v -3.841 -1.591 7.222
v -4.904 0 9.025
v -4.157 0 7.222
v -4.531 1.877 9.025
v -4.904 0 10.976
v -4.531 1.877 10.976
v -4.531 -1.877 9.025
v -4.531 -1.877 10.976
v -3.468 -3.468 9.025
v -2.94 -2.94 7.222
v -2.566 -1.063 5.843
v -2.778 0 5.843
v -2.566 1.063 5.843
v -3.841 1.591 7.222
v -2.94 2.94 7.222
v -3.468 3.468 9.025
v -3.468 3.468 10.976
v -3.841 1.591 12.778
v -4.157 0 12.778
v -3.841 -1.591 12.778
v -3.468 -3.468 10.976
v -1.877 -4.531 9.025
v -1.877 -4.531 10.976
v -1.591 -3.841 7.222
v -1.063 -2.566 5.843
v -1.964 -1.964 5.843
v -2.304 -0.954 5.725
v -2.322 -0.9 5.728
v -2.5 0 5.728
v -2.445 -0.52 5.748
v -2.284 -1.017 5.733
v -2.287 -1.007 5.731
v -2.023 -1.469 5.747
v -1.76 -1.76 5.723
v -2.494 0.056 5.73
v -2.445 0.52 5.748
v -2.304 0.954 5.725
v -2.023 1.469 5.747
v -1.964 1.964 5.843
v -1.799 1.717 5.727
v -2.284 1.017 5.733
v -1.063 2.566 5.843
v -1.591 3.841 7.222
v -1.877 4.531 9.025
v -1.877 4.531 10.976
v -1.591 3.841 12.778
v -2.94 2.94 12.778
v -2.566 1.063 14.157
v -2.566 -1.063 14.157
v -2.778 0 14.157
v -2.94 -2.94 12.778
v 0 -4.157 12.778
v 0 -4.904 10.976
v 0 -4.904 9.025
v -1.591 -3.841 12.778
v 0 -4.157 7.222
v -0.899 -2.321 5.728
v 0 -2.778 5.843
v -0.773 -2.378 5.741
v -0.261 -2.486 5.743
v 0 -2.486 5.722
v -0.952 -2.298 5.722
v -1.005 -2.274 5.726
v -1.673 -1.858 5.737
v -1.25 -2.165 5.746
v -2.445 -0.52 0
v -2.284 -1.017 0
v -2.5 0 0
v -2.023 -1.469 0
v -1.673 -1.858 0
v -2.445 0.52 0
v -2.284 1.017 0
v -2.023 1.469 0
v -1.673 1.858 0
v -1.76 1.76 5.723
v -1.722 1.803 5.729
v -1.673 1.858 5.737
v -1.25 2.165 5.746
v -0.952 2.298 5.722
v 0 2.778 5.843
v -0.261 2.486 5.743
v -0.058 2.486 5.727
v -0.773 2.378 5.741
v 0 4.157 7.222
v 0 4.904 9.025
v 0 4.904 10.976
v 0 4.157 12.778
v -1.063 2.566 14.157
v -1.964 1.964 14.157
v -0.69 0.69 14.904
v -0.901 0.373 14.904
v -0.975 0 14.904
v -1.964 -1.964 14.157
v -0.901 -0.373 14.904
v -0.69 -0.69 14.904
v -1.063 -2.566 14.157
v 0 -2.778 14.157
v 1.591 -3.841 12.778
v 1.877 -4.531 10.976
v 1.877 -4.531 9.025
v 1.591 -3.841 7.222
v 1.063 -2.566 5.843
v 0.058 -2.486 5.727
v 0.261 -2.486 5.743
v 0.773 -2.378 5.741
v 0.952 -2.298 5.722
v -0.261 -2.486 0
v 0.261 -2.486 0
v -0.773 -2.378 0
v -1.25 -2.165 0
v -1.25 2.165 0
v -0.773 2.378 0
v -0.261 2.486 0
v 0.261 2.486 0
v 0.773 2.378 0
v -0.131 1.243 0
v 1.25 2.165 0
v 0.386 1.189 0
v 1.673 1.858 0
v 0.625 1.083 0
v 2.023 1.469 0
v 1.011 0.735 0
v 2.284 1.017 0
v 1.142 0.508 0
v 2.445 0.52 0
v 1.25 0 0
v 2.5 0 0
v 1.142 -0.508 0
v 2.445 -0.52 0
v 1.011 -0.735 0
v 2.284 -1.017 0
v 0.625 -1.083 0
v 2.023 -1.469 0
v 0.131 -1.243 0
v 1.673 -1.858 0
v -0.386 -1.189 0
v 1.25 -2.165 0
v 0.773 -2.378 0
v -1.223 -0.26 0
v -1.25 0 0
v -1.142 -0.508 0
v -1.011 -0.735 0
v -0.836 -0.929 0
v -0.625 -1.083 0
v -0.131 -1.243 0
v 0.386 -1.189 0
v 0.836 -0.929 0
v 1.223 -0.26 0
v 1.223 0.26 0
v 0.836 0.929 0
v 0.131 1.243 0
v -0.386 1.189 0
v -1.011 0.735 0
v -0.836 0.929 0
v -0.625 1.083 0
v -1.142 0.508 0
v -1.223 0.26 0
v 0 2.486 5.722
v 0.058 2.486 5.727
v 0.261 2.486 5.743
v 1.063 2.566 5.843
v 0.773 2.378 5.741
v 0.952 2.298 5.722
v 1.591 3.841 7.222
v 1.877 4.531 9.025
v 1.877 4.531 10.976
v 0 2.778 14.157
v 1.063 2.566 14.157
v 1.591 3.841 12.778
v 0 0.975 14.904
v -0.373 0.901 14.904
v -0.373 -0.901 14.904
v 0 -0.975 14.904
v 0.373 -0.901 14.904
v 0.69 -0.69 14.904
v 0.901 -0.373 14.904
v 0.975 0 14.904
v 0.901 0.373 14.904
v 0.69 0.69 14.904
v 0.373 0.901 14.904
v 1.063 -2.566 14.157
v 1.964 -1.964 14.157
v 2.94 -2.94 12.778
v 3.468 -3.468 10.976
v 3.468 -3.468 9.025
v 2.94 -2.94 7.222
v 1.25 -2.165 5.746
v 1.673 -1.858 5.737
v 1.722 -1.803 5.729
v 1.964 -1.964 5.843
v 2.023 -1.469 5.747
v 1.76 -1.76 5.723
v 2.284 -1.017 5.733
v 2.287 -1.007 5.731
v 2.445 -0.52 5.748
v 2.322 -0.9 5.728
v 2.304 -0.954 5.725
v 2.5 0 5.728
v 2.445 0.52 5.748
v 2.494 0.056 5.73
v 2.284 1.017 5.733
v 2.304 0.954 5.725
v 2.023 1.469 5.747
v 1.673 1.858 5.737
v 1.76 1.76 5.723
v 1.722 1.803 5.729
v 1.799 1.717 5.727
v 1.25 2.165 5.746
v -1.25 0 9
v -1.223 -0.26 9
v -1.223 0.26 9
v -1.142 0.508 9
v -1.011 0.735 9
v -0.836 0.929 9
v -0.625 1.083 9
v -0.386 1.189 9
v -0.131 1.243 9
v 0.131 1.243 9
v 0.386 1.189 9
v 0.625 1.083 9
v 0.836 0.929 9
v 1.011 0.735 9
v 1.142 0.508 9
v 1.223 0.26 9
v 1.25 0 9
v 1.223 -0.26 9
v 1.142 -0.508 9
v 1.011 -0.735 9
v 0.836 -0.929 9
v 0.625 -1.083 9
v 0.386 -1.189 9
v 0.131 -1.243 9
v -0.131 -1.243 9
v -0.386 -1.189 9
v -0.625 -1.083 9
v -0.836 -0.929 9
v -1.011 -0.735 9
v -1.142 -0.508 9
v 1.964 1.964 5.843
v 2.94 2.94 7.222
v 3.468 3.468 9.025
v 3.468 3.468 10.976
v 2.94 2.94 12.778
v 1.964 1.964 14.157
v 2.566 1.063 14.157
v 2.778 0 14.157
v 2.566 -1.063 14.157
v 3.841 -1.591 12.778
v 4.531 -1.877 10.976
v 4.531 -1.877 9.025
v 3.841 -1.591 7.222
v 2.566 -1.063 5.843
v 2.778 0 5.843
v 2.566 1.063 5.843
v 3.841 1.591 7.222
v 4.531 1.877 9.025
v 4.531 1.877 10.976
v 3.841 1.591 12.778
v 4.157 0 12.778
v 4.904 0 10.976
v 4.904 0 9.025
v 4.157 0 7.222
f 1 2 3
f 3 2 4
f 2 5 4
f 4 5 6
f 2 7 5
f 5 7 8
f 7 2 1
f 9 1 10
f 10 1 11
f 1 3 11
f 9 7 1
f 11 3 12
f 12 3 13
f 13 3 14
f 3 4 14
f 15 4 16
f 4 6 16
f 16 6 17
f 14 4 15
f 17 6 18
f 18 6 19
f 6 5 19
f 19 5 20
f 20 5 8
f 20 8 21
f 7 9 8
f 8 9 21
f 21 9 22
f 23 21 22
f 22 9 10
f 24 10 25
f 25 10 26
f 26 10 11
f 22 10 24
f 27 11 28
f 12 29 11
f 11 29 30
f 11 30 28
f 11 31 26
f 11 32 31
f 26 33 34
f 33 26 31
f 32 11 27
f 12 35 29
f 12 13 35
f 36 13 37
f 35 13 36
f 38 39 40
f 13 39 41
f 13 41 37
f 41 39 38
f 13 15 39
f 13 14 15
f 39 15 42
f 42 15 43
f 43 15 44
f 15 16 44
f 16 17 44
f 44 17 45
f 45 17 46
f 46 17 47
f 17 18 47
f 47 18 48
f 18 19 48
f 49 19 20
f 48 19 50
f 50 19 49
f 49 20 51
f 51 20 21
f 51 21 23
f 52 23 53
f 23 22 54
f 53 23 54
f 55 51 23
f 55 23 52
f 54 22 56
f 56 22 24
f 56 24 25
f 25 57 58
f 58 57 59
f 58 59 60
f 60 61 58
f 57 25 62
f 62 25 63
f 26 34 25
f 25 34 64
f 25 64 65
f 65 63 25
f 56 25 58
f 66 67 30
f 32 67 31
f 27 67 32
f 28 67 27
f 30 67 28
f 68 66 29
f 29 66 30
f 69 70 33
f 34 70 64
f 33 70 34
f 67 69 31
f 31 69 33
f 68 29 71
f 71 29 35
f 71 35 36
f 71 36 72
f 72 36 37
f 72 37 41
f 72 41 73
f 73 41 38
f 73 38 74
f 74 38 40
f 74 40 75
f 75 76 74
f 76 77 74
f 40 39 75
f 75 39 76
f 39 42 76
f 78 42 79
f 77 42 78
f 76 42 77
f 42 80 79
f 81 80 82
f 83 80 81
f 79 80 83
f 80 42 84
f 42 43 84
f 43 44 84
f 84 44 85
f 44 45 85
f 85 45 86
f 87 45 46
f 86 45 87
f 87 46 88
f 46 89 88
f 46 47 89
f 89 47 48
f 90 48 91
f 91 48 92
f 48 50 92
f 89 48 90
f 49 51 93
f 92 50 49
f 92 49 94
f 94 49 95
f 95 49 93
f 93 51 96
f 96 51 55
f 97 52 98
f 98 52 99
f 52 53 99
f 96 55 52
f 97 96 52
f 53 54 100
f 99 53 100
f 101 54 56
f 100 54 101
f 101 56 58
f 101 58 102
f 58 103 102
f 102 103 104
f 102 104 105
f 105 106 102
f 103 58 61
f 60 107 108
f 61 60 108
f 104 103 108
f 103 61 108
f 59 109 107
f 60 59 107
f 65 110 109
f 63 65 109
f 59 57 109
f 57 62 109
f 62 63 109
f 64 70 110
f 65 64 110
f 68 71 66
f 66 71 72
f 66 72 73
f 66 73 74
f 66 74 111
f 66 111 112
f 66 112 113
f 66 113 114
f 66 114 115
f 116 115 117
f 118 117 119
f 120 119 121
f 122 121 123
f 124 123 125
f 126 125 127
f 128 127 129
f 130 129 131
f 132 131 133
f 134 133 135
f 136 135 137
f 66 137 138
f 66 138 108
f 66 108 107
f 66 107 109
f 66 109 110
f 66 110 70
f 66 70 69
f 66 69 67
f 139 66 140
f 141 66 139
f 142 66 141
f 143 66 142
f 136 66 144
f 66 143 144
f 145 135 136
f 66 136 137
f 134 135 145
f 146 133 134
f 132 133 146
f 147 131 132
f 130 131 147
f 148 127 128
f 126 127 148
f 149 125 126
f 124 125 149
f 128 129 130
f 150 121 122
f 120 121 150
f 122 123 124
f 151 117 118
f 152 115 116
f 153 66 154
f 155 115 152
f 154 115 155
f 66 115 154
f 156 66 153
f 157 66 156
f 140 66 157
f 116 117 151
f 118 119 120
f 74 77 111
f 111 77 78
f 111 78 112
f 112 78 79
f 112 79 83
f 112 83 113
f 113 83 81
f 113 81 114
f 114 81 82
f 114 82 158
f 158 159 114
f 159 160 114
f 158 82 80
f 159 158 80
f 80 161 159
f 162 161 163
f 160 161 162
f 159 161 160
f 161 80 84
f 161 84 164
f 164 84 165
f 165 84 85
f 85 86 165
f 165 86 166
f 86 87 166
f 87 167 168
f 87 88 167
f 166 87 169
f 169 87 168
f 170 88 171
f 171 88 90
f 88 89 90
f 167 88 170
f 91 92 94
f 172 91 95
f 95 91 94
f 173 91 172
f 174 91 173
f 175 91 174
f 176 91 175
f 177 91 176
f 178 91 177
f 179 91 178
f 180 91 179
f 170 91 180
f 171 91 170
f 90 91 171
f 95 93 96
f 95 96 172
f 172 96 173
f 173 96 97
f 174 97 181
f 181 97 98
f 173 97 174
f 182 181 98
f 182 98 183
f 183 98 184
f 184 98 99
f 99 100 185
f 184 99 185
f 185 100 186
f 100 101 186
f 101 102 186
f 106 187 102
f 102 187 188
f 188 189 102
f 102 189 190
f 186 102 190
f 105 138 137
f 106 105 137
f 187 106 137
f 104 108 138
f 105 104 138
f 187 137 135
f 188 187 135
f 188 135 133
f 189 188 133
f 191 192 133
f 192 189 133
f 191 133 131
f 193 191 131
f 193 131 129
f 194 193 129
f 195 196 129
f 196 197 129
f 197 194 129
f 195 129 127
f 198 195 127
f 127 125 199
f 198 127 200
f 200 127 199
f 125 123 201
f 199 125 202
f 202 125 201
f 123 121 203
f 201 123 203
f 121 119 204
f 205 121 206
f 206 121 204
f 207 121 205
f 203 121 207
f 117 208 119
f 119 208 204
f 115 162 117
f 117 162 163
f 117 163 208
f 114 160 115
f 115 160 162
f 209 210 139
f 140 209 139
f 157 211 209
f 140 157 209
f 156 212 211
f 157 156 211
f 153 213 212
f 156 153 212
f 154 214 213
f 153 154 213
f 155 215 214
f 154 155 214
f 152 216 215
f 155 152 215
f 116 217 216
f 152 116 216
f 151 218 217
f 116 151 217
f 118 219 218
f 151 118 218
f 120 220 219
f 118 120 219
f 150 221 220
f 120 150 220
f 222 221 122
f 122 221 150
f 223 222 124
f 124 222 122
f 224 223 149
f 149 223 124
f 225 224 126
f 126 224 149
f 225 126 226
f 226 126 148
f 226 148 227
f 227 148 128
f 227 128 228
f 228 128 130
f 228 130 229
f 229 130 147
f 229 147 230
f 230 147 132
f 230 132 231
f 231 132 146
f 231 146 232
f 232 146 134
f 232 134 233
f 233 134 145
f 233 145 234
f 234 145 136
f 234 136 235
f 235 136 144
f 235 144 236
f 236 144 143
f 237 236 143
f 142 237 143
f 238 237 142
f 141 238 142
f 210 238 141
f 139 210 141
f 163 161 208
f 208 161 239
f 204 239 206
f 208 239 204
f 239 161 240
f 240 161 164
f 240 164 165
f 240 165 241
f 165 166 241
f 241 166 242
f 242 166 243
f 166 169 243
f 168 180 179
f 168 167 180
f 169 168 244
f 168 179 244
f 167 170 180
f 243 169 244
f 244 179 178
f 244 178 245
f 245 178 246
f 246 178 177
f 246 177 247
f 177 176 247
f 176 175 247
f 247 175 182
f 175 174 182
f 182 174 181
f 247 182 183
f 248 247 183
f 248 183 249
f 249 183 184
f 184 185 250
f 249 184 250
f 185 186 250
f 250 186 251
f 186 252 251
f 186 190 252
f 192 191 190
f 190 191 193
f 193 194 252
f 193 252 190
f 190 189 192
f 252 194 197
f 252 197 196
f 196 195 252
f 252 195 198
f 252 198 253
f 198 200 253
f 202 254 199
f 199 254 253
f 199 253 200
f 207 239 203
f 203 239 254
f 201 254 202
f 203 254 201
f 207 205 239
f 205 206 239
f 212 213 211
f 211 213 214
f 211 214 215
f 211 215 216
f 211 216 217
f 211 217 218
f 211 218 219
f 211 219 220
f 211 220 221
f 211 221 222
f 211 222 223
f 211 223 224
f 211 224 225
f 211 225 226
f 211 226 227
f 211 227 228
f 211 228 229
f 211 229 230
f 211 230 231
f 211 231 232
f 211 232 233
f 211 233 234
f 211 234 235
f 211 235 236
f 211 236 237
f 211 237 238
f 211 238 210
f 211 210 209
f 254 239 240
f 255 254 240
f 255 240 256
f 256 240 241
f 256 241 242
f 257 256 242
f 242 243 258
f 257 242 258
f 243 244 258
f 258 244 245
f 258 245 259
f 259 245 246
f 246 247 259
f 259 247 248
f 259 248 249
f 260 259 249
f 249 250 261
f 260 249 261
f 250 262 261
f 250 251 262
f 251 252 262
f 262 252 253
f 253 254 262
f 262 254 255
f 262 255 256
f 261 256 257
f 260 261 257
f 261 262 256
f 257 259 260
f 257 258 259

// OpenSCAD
menor();
//maior();

module menor(){
difference(){
	union(){
		cylinder(r=5/2, h=7, $fn=30);
		translate([0,0,7+3])
			sphere(r = 10/2);
	}
	
	cylinder(r=2.5/2, h=9, $fn=30);
}
}

module maior(){
difference(){
	union(){
		cylinder(r=7/2, h=7, $fn=30);
		translate([0,0,7+3])
			sphere(r = 14/2);
	}
	
	cylinder(r=2.5/2, h=11, $fn=30);
}
}
